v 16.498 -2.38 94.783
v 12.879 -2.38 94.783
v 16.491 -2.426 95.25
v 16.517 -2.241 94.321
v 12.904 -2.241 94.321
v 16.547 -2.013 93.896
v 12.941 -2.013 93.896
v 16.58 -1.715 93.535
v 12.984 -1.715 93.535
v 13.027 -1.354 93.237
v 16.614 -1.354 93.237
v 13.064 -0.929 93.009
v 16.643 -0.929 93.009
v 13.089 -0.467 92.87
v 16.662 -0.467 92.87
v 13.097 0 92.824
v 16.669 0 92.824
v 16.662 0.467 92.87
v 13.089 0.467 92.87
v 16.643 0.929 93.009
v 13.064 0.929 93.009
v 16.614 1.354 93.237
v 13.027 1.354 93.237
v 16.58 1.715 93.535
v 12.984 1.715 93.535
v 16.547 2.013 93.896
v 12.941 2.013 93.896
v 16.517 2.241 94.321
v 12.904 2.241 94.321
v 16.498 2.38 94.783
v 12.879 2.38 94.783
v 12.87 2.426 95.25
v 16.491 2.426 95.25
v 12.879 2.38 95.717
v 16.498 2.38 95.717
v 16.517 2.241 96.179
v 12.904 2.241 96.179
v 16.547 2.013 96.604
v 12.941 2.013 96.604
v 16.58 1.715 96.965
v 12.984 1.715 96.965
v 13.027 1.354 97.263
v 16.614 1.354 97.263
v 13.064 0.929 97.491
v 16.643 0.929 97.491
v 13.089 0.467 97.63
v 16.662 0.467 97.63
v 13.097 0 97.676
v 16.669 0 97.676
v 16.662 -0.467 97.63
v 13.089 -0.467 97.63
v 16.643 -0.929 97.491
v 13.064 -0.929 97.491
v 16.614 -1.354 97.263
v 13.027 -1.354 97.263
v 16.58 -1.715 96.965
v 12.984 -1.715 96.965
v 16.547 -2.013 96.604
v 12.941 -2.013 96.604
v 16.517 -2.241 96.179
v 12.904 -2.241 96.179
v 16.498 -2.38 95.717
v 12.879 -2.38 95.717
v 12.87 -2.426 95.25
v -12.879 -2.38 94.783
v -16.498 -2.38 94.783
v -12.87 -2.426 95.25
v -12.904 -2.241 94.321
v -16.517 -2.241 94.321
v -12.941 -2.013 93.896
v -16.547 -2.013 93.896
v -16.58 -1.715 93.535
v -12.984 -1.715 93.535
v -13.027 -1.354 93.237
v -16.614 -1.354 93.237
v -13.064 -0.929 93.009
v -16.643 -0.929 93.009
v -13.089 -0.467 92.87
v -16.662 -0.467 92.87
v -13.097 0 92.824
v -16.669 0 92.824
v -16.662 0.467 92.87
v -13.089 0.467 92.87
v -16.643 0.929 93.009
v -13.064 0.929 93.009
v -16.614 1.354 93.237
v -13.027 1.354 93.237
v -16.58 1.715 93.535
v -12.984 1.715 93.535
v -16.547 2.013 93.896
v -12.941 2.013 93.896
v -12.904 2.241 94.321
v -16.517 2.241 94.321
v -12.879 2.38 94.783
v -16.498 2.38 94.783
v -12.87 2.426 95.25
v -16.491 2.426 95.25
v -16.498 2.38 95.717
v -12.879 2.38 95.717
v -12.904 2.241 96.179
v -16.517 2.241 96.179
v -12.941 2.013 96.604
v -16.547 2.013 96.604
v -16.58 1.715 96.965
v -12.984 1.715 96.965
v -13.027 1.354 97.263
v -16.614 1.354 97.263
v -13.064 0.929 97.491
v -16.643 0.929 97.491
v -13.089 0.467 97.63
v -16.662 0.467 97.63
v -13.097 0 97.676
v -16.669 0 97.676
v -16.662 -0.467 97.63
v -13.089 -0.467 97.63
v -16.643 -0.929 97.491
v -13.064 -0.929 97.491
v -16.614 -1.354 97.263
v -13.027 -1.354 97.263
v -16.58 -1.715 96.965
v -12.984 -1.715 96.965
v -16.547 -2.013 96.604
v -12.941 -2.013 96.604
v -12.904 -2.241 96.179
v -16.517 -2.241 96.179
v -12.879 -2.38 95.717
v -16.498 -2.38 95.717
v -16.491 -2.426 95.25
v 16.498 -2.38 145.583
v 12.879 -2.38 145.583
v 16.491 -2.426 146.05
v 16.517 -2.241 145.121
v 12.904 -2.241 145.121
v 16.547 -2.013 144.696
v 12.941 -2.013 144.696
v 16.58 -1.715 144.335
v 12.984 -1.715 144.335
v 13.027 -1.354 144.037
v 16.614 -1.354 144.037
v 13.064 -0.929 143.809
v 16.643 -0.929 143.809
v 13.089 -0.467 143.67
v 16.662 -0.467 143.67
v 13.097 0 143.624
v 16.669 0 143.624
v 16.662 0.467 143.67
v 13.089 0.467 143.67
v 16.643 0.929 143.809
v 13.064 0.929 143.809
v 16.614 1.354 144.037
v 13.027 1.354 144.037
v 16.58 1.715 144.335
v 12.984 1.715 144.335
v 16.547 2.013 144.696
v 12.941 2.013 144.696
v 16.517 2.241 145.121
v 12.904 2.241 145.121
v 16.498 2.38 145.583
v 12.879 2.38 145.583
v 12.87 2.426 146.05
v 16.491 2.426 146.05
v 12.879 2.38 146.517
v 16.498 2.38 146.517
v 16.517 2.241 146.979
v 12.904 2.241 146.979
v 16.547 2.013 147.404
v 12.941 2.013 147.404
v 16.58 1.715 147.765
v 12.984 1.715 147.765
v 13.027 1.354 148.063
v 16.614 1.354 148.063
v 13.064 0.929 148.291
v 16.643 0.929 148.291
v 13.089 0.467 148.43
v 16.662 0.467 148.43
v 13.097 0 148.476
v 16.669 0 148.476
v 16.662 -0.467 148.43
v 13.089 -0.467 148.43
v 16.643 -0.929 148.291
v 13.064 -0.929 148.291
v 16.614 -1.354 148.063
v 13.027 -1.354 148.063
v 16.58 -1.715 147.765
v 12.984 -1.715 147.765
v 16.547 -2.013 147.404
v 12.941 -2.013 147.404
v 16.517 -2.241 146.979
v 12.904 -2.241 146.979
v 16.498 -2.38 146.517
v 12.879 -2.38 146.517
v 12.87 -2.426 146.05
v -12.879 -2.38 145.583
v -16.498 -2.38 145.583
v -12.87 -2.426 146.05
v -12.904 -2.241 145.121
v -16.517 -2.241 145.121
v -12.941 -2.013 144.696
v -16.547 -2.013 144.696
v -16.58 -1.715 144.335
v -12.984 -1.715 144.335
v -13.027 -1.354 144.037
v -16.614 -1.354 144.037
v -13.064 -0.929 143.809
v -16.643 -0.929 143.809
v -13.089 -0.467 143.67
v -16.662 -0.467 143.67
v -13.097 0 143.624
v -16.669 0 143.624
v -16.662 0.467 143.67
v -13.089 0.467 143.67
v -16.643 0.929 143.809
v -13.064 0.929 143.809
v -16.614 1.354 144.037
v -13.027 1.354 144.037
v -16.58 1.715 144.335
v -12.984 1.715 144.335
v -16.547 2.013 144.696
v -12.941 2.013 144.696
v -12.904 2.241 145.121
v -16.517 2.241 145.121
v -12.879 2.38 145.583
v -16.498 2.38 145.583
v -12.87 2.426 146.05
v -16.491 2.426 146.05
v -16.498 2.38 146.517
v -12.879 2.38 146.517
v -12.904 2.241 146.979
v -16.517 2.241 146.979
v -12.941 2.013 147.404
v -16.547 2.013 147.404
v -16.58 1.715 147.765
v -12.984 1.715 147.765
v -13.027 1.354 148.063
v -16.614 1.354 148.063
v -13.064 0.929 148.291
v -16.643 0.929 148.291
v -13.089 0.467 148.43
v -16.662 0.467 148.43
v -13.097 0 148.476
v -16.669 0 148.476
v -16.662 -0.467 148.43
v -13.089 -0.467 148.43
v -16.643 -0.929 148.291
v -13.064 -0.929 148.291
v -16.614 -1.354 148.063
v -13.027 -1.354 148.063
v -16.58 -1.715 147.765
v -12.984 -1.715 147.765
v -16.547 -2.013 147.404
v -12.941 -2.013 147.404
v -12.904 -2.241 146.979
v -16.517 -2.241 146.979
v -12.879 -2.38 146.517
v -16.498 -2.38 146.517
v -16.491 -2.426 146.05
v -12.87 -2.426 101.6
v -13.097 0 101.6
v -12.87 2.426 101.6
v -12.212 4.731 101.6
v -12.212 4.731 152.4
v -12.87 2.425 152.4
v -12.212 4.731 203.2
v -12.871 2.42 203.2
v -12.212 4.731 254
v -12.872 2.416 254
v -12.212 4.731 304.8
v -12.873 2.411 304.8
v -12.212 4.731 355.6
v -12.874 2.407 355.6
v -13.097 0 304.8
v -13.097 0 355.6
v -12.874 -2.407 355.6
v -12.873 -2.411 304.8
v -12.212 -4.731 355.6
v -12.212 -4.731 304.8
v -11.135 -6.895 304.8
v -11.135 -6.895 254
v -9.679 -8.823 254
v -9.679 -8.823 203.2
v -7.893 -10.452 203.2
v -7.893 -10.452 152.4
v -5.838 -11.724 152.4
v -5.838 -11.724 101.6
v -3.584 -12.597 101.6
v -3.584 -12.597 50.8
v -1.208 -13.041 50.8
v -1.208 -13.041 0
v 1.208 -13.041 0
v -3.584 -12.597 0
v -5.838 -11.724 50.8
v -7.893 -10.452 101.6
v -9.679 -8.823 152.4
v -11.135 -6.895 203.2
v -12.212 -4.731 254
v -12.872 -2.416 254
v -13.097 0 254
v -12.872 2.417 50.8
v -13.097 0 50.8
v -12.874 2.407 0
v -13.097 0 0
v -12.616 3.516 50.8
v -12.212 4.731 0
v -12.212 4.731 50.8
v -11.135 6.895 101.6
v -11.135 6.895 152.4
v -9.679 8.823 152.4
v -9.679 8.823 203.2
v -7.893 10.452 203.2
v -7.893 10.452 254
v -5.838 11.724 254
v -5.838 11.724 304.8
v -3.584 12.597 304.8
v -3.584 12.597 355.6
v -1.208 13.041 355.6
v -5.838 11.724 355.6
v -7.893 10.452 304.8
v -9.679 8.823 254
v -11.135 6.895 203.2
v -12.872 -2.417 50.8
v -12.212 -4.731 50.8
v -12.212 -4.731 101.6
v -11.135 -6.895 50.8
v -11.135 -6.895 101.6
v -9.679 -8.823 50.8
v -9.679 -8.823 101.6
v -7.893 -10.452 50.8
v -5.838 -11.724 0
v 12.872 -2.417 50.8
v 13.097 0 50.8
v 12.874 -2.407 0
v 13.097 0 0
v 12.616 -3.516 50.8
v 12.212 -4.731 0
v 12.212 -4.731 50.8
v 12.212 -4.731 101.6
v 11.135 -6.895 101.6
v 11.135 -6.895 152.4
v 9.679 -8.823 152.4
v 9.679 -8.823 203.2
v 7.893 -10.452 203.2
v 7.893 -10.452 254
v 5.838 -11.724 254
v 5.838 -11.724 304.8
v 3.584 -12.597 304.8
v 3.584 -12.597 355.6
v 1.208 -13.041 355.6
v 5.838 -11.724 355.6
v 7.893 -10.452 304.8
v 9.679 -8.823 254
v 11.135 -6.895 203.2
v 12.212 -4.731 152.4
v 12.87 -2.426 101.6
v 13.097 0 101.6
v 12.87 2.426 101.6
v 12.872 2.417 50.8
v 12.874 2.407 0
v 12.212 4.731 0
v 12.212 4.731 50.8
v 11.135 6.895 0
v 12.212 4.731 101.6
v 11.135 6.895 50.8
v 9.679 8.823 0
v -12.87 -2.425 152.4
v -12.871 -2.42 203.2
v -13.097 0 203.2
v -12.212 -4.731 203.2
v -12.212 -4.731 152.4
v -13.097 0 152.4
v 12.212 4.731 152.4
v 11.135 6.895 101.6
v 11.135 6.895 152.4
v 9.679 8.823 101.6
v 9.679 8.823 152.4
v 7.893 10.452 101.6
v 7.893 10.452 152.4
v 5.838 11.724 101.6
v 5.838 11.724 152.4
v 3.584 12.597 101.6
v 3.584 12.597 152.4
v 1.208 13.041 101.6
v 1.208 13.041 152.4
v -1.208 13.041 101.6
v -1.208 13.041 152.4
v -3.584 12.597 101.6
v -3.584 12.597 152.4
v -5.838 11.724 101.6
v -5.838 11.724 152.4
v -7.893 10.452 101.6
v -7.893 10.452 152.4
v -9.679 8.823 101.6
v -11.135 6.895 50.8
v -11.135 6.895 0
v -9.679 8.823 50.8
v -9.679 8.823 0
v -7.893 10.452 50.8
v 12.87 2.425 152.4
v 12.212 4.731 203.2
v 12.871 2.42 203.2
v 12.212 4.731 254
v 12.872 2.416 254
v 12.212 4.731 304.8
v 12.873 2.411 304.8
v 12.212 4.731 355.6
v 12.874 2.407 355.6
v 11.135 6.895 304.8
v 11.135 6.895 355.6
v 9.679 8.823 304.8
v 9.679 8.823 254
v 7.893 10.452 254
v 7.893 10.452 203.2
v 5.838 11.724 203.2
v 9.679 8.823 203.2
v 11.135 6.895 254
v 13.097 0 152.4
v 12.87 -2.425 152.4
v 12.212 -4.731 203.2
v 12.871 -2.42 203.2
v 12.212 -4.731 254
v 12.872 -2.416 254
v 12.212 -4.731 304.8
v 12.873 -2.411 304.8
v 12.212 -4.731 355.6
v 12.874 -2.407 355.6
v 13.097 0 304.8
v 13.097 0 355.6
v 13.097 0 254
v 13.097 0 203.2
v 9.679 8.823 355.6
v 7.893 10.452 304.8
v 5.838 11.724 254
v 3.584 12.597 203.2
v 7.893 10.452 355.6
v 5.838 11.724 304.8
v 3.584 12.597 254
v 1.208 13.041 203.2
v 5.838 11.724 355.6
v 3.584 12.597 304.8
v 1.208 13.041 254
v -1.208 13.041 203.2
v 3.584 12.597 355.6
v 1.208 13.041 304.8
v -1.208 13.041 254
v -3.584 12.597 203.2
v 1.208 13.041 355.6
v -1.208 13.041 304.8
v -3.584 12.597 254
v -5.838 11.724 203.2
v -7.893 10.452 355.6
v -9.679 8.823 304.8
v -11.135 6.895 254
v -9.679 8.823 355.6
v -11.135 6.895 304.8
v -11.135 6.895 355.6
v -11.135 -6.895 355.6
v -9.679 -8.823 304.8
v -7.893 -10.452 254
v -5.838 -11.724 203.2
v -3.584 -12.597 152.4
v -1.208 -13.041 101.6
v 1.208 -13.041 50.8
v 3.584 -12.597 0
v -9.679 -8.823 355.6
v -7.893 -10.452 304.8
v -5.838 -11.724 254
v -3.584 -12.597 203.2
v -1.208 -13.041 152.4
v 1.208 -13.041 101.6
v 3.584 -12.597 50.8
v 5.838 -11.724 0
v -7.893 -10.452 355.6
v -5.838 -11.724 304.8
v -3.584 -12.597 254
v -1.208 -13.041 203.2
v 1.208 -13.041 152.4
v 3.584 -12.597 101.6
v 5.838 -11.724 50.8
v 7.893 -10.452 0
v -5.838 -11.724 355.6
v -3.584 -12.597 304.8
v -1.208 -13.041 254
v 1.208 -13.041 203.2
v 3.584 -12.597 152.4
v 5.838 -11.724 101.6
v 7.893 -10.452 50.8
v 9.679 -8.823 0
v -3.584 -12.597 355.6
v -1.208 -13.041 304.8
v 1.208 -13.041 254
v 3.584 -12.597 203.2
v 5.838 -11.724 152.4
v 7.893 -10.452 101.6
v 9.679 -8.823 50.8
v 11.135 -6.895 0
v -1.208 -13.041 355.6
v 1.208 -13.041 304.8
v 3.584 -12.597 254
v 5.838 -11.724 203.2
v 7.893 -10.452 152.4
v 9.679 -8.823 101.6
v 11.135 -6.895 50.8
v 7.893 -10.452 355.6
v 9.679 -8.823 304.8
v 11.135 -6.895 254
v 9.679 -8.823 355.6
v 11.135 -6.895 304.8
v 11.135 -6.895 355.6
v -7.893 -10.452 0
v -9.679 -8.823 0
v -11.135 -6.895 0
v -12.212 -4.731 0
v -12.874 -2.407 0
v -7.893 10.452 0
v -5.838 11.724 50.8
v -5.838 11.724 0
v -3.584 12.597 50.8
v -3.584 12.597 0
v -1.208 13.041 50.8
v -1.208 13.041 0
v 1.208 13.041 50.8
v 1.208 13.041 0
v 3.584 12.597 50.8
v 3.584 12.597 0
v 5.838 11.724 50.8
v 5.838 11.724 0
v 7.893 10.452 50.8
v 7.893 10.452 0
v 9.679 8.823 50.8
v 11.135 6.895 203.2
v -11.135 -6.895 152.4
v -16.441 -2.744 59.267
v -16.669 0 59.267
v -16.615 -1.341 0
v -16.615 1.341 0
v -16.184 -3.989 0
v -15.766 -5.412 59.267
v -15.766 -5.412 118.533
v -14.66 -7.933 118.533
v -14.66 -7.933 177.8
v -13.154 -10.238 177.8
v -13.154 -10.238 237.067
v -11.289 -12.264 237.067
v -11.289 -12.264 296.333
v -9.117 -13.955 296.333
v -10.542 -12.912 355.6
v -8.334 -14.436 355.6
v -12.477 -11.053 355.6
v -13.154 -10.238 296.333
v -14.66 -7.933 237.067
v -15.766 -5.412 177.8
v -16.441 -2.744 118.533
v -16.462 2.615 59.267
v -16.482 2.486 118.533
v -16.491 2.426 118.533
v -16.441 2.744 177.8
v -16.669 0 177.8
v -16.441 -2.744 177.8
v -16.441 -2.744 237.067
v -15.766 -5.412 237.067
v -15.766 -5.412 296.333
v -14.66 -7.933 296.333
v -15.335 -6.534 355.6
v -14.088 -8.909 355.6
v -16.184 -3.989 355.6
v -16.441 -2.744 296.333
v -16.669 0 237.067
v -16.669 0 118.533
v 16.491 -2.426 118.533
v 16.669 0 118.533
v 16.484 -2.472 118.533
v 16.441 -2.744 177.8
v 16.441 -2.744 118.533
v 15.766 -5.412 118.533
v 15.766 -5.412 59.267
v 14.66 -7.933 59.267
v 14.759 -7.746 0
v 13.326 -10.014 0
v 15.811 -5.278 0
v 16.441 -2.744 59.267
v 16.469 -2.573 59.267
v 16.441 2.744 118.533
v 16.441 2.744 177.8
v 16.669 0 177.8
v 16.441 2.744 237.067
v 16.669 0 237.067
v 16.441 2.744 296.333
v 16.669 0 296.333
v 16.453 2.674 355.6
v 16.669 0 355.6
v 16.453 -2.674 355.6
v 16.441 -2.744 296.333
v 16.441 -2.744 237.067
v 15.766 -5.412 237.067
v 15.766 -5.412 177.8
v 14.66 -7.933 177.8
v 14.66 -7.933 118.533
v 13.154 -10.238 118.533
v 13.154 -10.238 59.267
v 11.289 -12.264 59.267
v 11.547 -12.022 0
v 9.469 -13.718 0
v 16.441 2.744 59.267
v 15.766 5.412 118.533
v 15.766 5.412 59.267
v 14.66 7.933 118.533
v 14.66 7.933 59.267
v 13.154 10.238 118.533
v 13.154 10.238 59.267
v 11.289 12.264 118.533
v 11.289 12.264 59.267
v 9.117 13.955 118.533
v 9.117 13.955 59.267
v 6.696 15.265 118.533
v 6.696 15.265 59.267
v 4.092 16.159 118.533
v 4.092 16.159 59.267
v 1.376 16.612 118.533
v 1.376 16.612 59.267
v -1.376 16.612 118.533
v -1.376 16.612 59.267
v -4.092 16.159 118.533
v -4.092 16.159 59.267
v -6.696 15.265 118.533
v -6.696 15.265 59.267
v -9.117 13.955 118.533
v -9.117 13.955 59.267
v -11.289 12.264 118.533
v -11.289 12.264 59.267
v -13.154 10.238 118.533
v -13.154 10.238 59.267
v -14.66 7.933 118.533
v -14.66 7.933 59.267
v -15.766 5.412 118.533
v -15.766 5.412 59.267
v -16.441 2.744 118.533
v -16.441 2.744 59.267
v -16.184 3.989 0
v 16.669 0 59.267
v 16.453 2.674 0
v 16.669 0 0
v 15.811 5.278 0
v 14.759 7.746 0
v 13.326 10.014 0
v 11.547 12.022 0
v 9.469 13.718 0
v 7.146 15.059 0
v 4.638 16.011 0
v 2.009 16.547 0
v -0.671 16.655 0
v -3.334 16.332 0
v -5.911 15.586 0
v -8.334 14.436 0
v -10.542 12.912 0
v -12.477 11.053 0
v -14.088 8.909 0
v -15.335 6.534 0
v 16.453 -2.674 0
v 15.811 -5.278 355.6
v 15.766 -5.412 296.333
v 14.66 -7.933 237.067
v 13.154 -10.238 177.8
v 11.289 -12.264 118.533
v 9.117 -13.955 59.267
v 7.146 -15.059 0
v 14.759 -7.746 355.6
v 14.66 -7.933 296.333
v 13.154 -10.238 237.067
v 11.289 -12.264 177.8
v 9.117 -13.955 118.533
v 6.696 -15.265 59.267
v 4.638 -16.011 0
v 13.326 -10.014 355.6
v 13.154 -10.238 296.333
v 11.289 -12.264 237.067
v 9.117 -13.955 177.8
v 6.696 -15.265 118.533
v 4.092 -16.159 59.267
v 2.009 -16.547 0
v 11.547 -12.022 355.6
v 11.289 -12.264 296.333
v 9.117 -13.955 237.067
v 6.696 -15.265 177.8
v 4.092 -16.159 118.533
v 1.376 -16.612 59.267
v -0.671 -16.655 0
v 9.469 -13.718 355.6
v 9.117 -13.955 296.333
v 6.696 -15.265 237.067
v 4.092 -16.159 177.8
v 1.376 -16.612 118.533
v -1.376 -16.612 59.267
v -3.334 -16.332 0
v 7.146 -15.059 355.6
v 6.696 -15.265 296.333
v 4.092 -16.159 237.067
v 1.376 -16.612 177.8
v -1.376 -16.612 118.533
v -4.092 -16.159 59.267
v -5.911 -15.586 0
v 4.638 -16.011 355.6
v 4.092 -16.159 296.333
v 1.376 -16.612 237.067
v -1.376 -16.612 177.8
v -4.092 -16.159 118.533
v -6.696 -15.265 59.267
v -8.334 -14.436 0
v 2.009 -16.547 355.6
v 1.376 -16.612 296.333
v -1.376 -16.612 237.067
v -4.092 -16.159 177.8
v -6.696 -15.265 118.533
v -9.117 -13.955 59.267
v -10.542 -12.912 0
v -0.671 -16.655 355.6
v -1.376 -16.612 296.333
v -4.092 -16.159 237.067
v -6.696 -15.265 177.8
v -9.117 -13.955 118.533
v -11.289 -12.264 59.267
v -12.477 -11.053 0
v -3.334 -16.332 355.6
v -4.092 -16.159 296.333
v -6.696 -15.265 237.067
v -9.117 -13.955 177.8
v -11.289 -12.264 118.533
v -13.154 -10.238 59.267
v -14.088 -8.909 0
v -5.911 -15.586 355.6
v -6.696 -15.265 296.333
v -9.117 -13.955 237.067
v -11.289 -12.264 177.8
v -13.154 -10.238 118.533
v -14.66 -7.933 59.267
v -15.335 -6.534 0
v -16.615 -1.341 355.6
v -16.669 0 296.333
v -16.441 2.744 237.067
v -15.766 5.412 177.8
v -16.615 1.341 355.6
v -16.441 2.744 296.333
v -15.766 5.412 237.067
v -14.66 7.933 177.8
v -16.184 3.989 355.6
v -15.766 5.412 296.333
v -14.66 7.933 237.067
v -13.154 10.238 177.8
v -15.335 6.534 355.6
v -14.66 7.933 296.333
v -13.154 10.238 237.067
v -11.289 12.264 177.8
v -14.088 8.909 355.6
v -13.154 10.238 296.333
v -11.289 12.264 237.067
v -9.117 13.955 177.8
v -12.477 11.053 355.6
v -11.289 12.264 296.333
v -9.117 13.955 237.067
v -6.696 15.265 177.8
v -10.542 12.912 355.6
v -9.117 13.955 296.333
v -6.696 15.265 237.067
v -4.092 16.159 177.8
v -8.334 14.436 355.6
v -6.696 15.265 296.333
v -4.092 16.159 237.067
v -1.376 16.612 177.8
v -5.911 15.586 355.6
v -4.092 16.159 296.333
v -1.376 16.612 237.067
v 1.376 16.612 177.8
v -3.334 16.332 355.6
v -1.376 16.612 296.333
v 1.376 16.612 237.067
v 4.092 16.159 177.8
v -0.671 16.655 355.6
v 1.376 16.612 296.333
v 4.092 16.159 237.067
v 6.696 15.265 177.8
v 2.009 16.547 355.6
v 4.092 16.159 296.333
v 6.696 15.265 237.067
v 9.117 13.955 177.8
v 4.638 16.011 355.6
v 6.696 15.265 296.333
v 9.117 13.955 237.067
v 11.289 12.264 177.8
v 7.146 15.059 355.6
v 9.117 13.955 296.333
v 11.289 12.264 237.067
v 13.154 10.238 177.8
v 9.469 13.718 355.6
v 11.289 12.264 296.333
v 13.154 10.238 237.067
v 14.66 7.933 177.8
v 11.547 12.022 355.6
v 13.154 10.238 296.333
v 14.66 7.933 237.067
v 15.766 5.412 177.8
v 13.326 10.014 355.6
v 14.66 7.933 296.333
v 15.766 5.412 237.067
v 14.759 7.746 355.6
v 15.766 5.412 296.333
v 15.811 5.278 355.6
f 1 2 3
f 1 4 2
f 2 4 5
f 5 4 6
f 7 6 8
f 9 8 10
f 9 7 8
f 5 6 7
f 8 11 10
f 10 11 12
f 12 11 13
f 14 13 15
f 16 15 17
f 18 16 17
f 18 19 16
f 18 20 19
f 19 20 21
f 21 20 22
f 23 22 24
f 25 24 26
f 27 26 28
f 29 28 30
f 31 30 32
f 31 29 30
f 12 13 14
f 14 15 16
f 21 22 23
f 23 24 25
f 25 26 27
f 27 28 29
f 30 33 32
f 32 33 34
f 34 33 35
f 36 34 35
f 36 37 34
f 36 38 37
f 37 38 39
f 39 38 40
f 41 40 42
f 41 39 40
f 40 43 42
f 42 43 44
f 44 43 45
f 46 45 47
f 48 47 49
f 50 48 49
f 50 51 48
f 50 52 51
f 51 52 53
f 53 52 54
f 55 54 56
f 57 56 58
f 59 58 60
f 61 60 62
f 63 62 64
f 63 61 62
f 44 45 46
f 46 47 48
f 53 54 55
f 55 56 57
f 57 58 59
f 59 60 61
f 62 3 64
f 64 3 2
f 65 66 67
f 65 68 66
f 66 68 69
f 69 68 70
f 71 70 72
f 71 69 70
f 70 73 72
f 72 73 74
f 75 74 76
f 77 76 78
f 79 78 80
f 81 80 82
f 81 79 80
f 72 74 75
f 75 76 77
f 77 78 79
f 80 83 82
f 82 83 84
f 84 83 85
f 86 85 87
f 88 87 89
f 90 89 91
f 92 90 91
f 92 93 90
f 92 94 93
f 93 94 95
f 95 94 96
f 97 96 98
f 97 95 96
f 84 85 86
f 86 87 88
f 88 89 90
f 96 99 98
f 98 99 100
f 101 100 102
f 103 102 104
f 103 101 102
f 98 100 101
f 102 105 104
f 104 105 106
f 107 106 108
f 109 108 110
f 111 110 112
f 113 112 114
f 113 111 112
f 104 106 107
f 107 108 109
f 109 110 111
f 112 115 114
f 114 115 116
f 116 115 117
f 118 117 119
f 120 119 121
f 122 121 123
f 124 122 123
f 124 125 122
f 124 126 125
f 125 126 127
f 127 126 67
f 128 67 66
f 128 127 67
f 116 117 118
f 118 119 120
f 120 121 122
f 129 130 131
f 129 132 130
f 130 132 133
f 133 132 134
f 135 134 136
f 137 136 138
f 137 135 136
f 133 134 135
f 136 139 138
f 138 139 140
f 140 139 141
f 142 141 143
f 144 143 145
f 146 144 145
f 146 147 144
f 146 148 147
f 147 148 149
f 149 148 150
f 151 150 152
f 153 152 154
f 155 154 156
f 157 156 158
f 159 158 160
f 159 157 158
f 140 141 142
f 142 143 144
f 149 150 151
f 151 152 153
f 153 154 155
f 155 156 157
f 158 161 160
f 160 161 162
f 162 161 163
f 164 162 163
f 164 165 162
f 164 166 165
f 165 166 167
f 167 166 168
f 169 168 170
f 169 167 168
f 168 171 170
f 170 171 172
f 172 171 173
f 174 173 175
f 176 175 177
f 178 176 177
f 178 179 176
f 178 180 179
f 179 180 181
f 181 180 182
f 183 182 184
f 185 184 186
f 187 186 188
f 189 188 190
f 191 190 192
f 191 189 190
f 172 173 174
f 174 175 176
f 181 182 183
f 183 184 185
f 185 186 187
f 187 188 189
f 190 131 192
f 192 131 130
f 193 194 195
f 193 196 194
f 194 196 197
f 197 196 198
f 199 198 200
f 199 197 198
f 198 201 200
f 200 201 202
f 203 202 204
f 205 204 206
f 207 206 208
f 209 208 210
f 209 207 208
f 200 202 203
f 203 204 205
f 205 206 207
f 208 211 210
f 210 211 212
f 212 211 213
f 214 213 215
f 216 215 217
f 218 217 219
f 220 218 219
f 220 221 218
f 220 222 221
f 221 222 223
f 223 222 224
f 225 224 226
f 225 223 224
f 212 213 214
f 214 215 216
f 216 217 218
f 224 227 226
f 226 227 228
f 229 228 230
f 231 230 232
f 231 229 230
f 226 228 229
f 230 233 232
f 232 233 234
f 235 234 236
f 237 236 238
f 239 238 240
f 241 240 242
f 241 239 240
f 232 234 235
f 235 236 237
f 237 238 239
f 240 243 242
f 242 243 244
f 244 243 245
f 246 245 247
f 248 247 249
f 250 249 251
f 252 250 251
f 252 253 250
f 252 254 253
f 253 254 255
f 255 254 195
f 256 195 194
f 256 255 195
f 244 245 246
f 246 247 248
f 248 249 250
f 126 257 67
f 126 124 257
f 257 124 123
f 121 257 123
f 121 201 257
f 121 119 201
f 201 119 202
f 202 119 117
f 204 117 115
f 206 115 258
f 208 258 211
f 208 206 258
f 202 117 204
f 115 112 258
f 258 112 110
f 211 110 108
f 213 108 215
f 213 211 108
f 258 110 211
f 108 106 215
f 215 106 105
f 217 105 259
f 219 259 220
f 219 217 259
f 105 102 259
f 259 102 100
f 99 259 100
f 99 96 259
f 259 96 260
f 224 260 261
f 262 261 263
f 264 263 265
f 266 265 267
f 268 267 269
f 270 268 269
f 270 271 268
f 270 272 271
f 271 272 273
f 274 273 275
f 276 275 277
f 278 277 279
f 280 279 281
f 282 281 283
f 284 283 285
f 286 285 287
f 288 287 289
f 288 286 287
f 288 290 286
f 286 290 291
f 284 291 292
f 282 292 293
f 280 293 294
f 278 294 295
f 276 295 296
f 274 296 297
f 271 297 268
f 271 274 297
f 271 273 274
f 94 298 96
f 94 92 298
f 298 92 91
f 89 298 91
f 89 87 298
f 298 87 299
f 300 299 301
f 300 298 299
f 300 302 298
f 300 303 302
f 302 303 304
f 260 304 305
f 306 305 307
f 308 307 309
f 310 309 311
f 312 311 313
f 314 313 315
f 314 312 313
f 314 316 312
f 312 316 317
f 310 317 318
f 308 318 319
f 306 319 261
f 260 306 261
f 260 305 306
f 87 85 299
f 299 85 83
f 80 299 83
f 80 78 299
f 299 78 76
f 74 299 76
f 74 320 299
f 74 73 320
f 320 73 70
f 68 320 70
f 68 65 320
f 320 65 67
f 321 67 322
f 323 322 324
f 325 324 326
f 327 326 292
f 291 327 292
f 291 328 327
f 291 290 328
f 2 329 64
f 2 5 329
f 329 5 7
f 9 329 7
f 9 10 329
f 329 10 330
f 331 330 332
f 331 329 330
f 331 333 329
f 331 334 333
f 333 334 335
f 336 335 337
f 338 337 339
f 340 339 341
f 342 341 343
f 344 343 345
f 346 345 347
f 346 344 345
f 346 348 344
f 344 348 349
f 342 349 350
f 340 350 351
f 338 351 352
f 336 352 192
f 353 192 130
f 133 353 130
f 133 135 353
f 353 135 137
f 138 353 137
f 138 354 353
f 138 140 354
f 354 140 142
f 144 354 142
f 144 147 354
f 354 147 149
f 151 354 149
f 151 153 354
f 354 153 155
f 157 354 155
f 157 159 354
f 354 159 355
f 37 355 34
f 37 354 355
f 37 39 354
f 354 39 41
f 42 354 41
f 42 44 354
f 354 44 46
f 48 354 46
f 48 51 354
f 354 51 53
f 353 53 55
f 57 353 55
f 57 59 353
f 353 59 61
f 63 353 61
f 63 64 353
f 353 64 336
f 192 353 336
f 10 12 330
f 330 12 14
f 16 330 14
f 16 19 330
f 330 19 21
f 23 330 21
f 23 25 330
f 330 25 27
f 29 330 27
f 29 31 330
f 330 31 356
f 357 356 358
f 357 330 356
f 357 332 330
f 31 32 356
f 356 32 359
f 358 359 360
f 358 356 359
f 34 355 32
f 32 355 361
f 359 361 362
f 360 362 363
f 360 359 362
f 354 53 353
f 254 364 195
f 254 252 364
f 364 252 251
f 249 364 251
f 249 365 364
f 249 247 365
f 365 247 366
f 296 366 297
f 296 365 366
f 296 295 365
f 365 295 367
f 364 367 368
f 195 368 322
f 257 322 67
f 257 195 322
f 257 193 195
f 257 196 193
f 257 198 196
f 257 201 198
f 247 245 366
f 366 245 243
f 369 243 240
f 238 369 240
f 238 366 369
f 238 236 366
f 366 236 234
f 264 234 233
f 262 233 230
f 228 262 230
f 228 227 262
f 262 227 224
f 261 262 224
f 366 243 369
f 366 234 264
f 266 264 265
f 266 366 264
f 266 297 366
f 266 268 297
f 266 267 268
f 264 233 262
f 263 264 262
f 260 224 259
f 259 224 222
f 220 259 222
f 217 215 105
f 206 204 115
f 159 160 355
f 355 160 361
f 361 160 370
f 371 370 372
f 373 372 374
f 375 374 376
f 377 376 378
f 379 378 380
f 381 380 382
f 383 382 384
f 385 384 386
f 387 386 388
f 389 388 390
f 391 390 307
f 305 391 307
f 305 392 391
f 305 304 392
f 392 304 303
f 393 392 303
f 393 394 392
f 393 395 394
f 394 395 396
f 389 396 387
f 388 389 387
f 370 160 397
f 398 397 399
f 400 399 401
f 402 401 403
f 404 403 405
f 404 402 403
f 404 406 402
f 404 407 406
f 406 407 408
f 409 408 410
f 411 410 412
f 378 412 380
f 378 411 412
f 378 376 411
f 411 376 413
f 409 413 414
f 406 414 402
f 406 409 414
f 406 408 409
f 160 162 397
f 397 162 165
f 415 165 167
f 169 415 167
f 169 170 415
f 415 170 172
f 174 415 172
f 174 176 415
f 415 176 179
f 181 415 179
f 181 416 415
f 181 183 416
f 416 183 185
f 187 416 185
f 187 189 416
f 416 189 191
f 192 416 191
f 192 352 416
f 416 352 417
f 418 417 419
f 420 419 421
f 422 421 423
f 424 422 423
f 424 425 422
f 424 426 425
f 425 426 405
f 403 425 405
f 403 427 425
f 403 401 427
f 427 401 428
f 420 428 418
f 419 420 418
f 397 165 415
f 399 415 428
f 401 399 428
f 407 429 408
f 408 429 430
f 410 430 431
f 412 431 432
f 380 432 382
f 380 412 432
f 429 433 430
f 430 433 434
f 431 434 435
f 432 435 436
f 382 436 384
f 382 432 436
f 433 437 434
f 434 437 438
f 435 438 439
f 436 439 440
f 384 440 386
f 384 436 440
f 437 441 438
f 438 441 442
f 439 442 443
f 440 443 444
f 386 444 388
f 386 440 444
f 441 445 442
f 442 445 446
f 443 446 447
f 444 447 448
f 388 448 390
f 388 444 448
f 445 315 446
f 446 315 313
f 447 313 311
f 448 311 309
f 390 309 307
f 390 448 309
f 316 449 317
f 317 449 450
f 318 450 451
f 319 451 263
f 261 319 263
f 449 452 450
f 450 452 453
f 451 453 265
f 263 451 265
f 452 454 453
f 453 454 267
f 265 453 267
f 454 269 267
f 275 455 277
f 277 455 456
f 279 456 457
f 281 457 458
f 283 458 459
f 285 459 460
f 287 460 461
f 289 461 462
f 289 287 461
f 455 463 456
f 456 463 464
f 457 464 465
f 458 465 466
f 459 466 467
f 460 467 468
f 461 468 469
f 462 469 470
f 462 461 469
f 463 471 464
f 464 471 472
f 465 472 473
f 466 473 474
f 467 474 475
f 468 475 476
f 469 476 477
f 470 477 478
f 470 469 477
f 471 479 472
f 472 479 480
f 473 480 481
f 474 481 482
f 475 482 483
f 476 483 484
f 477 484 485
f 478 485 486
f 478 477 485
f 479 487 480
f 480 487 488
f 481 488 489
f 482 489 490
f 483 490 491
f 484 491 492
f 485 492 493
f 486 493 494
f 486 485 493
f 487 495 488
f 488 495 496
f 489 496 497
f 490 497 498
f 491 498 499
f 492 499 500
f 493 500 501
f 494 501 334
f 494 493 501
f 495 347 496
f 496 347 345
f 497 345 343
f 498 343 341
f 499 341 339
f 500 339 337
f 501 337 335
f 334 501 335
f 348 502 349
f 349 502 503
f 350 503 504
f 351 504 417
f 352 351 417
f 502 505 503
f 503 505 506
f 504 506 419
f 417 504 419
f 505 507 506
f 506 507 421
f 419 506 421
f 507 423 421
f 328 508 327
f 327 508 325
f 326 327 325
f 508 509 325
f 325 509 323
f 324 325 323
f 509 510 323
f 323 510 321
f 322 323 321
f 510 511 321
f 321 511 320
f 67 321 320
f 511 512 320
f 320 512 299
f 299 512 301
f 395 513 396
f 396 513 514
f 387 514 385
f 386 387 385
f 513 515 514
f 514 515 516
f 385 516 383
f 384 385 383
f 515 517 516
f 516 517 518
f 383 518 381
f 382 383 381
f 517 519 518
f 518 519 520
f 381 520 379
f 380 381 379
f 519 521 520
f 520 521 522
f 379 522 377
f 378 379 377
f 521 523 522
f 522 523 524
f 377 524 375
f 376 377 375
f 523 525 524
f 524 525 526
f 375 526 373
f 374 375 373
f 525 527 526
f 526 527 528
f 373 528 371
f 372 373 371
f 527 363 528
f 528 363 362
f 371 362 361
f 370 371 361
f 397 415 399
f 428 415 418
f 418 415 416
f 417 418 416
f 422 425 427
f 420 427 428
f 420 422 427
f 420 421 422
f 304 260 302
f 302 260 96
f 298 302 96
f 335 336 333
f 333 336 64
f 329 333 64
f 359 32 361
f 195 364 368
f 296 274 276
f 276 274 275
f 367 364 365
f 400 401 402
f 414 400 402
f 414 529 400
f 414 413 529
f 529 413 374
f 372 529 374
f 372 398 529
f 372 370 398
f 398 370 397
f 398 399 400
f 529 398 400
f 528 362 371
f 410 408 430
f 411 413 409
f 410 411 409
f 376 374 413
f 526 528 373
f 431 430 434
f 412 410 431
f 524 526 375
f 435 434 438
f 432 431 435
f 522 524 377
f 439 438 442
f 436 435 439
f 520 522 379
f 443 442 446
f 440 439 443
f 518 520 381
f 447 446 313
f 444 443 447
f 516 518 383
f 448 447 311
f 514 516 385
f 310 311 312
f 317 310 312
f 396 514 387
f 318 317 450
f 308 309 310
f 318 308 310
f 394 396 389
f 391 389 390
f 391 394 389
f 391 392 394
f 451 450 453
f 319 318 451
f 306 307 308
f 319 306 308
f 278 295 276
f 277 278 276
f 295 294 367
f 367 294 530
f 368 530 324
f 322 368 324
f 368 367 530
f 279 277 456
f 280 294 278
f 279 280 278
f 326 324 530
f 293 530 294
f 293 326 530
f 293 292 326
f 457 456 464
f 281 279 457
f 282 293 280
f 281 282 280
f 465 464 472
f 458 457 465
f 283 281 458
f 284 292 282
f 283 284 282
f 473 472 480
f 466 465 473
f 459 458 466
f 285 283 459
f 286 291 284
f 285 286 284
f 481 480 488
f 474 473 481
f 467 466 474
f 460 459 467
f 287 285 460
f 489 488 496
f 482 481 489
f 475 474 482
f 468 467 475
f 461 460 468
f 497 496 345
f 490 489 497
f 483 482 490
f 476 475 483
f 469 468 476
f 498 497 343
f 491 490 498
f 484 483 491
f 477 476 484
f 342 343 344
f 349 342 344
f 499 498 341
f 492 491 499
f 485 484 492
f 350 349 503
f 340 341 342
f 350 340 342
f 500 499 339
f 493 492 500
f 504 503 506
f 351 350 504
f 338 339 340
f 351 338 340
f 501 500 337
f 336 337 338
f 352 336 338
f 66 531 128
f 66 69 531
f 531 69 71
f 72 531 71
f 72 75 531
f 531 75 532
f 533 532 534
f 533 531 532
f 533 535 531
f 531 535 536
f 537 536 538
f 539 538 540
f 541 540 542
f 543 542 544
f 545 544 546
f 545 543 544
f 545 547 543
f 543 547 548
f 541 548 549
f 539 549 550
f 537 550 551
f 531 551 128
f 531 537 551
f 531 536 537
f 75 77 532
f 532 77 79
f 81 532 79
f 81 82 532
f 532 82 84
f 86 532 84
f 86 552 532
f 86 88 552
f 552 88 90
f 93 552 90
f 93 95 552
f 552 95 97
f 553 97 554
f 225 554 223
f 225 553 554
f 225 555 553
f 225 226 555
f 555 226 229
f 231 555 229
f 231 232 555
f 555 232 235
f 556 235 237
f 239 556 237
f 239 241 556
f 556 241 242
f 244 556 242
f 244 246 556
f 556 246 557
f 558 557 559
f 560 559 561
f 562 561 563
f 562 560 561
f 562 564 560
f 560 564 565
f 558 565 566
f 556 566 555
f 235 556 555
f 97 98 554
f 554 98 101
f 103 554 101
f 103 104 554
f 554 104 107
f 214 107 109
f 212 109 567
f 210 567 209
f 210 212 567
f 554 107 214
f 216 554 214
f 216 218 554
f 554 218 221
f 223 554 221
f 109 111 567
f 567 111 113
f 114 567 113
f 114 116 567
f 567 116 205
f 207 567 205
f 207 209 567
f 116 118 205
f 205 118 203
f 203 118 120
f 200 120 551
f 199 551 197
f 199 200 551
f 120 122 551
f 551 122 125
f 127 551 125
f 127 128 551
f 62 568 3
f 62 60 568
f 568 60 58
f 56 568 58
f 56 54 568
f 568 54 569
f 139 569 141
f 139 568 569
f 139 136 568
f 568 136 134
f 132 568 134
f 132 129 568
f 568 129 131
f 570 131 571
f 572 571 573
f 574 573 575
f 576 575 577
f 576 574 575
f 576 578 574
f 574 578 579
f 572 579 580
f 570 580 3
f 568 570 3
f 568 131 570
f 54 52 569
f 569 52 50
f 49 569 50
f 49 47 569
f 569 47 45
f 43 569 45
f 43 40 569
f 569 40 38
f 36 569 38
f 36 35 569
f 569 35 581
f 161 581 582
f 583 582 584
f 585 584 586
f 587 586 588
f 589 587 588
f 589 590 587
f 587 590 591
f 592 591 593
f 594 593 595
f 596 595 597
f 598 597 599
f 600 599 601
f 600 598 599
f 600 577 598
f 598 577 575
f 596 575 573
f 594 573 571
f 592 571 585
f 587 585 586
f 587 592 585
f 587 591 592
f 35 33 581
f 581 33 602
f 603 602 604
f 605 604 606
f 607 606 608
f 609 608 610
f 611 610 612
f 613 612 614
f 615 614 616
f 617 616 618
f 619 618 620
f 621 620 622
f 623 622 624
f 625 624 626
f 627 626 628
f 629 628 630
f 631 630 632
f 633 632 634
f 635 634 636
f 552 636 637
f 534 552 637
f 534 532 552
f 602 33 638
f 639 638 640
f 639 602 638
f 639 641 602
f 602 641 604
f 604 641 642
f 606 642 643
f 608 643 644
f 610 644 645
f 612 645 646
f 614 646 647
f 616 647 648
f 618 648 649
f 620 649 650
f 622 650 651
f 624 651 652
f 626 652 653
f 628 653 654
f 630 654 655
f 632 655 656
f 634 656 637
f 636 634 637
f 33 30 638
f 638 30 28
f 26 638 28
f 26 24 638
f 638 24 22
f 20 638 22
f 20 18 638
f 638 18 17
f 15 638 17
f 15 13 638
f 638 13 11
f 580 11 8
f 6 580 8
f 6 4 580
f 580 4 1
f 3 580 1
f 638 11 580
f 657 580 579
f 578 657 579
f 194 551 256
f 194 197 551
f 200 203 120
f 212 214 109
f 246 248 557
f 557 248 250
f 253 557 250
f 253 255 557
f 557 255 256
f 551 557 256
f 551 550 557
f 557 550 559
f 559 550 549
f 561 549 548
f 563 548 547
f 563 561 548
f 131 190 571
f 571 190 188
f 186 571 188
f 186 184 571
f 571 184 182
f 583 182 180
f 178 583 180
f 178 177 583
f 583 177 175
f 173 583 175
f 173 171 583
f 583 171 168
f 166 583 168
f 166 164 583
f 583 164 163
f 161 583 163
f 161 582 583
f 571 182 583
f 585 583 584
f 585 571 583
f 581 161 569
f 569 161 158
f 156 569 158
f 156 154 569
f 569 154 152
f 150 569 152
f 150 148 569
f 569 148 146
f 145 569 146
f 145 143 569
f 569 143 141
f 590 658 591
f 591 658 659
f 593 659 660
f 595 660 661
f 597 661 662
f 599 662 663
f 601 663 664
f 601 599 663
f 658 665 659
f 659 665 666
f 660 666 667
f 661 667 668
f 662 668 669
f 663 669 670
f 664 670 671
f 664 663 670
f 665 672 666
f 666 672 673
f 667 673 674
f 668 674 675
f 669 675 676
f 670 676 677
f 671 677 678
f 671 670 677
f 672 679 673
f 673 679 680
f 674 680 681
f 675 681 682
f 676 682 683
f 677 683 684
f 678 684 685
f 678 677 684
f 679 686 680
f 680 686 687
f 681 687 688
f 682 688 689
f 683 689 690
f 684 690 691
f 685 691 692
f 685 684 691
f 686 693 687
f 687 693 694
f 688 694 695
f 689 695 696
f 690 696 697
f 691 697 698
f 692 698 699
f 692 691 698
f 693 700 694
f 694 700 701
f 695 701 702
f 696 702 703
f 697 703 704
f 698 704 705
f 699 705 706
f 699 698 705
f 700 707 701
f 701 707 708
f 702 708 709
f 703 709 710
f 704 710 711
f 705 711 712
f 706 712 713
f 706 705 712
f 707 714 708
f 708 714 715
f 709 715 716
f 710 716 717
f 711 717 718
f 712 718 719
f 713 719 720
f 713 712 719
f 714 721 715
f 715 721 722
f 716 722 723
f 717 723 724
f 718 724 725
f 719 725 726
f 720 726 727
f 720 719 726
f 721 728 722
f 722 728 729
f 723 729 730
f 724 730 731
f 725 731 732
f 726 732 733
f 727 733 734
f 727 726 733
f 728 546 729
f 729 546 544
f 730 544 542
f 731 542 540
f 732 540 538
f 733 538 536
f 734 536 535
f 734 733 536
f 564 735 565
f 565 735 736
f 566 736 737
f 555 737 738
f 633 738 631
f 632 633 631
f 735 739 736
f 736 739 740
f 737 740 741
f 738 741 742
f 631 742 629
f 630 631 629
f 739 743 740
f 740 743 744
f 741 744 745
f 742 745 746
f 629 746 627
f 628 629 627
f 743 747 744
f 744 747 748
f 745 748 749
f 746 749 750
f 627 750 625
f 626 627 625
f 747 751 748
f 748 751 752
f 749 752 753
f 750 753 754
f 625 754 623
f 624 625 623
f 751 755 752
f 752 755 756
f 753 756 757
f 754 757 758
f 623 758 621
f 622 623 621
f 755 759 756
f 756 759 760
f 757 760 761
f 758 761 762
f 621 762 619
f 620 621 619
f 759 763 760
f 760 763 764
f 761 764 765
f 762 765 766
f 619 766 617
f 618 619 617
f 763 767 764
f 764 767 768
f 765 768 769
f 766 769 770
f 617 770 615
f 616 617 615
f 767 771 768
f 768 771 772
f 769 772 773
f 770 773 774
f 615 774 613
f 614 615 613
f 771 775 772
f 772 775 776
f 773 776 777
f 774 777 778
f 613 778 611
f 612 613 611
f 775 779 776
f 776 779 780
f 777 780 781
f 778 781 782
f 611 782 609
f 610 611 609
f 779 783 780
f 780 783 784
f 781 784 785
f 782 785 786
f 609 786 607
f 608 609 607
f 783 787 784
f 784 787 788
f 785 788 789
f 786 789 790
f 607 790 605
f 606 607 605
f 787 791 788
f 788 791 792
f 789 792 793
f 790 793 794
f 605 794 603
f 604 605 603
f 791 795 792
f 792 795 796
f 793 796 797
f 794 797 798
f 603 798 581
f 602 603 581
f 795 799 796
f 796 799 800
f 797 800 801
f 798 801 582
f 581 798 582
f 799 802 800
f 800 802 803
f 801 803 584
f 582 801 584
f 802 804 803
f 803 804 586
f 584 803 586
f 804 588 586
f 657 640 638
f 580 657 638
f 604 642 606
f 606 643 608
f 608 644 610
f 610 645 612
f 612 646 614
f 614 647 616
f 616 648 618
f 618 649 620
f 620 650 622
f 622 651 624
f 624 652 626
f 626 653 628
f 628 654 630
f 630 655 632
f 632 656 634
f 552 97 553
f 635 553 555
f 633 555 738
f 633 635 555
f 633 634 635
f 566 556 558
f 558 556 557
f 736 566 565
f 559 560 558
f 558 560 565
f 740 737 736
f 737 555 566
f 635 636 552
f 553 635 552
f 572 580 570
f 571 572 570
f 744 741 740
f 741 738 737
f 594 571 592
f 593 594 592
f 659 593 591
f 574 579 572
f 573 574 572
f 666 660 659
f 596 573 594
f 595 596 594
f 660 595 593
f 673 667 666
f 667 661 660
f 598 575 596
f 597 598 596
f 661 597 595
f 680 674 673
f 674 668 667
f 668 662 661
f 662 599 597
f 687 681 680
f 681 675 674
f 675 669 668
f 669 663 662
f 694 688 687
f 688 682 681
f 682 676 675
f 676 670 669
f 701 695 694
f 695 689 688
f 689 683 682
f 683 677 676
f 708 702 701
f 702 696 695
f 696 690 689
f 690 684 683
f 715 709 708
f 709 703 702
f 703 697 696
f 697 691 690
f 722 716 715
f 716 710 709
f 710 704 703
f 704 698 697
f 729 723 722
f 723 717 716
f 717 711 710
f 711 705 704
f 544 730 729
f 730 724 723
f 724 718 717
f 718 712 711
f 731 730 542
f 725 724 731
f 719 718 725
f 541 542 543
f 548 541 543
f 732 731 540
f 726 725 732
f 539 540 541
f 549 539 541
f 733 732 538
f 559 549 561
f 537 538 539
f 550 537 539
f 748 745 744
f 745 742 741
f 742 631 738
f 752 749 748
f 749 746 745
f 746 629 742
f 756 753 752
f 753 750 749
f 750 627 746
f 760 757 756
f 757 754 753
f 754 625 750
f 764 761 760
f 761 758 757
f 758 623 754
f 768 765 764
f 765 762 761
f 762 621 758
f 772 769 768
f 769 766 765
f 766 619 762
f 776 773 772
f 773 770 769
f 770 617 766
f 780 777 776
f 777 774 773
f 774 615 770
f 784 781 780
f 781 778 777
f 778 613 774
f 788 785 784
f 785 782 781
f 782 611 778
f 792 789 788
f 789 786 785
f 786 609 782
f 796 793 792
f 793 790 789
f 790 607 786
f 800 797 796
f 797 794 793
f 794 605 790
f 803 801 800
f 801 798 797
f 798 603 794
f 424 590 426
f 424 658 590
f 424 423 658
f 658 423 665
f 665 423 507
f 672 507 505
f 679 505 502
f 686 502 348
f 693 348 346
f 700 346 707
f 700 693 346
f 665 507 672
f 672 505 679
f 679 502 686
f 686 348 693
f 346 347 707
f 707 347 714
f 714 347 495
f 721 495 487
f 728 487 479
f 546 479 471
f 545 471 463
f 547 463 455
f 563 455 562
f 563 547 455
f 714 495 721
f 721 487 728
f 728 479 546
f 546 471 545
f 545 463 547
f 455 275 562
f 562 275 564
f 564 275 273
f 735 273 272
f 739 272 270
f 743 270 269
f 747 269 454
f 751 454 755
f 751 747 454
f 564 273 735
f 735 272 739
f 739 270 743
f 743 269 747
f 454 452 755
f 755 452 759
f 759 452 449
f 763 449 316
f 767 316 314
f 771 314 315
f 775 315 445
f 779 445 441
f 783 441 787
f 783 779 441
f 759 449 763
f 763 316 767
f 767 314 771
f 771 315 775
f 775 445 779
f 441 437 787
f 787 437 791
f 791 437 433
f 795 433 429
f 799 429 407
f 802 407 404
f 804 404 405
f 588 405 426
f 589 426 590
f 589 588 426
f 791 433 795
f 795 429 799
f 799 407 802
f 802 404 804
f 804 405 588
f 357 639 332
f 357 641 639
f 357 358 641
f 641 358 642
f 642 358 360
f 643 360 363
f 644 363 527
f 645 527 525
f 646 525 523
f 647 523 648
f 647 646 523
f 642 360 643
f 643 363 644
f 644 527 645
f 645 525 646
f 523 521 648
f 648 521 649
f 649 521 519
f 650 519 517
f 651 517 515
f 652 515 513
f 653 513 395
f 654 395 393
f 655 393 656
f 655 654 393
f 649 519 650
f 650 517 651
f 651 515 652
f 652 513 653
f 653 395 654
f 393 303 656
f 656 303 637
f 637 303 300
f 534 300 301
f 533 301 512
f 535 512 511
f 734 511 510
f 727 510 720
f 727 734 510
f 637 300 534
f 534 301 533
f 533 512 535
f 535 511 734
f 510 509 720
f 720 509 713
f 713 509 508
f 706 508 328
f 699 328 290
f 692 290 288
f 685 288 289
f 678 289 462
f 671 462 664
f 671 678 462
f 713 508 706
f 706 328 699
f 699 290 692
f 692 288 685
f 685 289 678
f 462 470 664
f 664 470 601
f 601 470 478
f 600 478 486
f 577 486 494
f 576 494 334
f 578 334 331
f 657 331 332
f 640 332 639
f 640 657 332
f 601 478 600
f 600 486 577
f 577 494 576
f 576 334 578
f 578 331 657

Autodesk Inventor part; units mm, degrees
ref_plane "XZ Plane" through (0, 0, 0) normal (0, 1, 0) x (-1, 0, 0)
ref_plane "XY Plane" through (0, 0, 0) normal (0, 0, 1) x (1, 0, 0)
sketch "Sketch1" plane through (0, 0, 0) normal (0, 0, 1) x (1, 0, 0)
  circle A0 centre (0, 0) radius 13.0969
  circle A1 centre (0, 0) radius 16.6688
  dimension "d0" = 26.1938
  dimension "d1" = 33.3375
extrude "Extrusion1" add sketch "Sketch1" along normal blind 355.6
ref_plane "Work Plane1" through (0, 0, 0) normal (1, 0, 0) x (0, 0, 1)
sketch "Sketch2" plane through (0, 0, 0) normal (1, 0, 0) x (0, 0, 1)
  circle A0 centre (146.05, 0) radius 2.4257
  line L0 (-71.12, 0) -> (426.72, 0) projected
  line L1 (355.6, 13.0969) -> (355.6, -13.0969) projected
  dimension "d5" = 4.8514
  dimension "d6" = 209.55
extrude "Extrusion2" cut sketch "Sketch2" against normal mid plane 381
pattern_linear "Rectangular Pattern1" count 2 spacing 50.8 along (0, 0, -1) of "Extrusion2"
properties part number "FE-00026"
